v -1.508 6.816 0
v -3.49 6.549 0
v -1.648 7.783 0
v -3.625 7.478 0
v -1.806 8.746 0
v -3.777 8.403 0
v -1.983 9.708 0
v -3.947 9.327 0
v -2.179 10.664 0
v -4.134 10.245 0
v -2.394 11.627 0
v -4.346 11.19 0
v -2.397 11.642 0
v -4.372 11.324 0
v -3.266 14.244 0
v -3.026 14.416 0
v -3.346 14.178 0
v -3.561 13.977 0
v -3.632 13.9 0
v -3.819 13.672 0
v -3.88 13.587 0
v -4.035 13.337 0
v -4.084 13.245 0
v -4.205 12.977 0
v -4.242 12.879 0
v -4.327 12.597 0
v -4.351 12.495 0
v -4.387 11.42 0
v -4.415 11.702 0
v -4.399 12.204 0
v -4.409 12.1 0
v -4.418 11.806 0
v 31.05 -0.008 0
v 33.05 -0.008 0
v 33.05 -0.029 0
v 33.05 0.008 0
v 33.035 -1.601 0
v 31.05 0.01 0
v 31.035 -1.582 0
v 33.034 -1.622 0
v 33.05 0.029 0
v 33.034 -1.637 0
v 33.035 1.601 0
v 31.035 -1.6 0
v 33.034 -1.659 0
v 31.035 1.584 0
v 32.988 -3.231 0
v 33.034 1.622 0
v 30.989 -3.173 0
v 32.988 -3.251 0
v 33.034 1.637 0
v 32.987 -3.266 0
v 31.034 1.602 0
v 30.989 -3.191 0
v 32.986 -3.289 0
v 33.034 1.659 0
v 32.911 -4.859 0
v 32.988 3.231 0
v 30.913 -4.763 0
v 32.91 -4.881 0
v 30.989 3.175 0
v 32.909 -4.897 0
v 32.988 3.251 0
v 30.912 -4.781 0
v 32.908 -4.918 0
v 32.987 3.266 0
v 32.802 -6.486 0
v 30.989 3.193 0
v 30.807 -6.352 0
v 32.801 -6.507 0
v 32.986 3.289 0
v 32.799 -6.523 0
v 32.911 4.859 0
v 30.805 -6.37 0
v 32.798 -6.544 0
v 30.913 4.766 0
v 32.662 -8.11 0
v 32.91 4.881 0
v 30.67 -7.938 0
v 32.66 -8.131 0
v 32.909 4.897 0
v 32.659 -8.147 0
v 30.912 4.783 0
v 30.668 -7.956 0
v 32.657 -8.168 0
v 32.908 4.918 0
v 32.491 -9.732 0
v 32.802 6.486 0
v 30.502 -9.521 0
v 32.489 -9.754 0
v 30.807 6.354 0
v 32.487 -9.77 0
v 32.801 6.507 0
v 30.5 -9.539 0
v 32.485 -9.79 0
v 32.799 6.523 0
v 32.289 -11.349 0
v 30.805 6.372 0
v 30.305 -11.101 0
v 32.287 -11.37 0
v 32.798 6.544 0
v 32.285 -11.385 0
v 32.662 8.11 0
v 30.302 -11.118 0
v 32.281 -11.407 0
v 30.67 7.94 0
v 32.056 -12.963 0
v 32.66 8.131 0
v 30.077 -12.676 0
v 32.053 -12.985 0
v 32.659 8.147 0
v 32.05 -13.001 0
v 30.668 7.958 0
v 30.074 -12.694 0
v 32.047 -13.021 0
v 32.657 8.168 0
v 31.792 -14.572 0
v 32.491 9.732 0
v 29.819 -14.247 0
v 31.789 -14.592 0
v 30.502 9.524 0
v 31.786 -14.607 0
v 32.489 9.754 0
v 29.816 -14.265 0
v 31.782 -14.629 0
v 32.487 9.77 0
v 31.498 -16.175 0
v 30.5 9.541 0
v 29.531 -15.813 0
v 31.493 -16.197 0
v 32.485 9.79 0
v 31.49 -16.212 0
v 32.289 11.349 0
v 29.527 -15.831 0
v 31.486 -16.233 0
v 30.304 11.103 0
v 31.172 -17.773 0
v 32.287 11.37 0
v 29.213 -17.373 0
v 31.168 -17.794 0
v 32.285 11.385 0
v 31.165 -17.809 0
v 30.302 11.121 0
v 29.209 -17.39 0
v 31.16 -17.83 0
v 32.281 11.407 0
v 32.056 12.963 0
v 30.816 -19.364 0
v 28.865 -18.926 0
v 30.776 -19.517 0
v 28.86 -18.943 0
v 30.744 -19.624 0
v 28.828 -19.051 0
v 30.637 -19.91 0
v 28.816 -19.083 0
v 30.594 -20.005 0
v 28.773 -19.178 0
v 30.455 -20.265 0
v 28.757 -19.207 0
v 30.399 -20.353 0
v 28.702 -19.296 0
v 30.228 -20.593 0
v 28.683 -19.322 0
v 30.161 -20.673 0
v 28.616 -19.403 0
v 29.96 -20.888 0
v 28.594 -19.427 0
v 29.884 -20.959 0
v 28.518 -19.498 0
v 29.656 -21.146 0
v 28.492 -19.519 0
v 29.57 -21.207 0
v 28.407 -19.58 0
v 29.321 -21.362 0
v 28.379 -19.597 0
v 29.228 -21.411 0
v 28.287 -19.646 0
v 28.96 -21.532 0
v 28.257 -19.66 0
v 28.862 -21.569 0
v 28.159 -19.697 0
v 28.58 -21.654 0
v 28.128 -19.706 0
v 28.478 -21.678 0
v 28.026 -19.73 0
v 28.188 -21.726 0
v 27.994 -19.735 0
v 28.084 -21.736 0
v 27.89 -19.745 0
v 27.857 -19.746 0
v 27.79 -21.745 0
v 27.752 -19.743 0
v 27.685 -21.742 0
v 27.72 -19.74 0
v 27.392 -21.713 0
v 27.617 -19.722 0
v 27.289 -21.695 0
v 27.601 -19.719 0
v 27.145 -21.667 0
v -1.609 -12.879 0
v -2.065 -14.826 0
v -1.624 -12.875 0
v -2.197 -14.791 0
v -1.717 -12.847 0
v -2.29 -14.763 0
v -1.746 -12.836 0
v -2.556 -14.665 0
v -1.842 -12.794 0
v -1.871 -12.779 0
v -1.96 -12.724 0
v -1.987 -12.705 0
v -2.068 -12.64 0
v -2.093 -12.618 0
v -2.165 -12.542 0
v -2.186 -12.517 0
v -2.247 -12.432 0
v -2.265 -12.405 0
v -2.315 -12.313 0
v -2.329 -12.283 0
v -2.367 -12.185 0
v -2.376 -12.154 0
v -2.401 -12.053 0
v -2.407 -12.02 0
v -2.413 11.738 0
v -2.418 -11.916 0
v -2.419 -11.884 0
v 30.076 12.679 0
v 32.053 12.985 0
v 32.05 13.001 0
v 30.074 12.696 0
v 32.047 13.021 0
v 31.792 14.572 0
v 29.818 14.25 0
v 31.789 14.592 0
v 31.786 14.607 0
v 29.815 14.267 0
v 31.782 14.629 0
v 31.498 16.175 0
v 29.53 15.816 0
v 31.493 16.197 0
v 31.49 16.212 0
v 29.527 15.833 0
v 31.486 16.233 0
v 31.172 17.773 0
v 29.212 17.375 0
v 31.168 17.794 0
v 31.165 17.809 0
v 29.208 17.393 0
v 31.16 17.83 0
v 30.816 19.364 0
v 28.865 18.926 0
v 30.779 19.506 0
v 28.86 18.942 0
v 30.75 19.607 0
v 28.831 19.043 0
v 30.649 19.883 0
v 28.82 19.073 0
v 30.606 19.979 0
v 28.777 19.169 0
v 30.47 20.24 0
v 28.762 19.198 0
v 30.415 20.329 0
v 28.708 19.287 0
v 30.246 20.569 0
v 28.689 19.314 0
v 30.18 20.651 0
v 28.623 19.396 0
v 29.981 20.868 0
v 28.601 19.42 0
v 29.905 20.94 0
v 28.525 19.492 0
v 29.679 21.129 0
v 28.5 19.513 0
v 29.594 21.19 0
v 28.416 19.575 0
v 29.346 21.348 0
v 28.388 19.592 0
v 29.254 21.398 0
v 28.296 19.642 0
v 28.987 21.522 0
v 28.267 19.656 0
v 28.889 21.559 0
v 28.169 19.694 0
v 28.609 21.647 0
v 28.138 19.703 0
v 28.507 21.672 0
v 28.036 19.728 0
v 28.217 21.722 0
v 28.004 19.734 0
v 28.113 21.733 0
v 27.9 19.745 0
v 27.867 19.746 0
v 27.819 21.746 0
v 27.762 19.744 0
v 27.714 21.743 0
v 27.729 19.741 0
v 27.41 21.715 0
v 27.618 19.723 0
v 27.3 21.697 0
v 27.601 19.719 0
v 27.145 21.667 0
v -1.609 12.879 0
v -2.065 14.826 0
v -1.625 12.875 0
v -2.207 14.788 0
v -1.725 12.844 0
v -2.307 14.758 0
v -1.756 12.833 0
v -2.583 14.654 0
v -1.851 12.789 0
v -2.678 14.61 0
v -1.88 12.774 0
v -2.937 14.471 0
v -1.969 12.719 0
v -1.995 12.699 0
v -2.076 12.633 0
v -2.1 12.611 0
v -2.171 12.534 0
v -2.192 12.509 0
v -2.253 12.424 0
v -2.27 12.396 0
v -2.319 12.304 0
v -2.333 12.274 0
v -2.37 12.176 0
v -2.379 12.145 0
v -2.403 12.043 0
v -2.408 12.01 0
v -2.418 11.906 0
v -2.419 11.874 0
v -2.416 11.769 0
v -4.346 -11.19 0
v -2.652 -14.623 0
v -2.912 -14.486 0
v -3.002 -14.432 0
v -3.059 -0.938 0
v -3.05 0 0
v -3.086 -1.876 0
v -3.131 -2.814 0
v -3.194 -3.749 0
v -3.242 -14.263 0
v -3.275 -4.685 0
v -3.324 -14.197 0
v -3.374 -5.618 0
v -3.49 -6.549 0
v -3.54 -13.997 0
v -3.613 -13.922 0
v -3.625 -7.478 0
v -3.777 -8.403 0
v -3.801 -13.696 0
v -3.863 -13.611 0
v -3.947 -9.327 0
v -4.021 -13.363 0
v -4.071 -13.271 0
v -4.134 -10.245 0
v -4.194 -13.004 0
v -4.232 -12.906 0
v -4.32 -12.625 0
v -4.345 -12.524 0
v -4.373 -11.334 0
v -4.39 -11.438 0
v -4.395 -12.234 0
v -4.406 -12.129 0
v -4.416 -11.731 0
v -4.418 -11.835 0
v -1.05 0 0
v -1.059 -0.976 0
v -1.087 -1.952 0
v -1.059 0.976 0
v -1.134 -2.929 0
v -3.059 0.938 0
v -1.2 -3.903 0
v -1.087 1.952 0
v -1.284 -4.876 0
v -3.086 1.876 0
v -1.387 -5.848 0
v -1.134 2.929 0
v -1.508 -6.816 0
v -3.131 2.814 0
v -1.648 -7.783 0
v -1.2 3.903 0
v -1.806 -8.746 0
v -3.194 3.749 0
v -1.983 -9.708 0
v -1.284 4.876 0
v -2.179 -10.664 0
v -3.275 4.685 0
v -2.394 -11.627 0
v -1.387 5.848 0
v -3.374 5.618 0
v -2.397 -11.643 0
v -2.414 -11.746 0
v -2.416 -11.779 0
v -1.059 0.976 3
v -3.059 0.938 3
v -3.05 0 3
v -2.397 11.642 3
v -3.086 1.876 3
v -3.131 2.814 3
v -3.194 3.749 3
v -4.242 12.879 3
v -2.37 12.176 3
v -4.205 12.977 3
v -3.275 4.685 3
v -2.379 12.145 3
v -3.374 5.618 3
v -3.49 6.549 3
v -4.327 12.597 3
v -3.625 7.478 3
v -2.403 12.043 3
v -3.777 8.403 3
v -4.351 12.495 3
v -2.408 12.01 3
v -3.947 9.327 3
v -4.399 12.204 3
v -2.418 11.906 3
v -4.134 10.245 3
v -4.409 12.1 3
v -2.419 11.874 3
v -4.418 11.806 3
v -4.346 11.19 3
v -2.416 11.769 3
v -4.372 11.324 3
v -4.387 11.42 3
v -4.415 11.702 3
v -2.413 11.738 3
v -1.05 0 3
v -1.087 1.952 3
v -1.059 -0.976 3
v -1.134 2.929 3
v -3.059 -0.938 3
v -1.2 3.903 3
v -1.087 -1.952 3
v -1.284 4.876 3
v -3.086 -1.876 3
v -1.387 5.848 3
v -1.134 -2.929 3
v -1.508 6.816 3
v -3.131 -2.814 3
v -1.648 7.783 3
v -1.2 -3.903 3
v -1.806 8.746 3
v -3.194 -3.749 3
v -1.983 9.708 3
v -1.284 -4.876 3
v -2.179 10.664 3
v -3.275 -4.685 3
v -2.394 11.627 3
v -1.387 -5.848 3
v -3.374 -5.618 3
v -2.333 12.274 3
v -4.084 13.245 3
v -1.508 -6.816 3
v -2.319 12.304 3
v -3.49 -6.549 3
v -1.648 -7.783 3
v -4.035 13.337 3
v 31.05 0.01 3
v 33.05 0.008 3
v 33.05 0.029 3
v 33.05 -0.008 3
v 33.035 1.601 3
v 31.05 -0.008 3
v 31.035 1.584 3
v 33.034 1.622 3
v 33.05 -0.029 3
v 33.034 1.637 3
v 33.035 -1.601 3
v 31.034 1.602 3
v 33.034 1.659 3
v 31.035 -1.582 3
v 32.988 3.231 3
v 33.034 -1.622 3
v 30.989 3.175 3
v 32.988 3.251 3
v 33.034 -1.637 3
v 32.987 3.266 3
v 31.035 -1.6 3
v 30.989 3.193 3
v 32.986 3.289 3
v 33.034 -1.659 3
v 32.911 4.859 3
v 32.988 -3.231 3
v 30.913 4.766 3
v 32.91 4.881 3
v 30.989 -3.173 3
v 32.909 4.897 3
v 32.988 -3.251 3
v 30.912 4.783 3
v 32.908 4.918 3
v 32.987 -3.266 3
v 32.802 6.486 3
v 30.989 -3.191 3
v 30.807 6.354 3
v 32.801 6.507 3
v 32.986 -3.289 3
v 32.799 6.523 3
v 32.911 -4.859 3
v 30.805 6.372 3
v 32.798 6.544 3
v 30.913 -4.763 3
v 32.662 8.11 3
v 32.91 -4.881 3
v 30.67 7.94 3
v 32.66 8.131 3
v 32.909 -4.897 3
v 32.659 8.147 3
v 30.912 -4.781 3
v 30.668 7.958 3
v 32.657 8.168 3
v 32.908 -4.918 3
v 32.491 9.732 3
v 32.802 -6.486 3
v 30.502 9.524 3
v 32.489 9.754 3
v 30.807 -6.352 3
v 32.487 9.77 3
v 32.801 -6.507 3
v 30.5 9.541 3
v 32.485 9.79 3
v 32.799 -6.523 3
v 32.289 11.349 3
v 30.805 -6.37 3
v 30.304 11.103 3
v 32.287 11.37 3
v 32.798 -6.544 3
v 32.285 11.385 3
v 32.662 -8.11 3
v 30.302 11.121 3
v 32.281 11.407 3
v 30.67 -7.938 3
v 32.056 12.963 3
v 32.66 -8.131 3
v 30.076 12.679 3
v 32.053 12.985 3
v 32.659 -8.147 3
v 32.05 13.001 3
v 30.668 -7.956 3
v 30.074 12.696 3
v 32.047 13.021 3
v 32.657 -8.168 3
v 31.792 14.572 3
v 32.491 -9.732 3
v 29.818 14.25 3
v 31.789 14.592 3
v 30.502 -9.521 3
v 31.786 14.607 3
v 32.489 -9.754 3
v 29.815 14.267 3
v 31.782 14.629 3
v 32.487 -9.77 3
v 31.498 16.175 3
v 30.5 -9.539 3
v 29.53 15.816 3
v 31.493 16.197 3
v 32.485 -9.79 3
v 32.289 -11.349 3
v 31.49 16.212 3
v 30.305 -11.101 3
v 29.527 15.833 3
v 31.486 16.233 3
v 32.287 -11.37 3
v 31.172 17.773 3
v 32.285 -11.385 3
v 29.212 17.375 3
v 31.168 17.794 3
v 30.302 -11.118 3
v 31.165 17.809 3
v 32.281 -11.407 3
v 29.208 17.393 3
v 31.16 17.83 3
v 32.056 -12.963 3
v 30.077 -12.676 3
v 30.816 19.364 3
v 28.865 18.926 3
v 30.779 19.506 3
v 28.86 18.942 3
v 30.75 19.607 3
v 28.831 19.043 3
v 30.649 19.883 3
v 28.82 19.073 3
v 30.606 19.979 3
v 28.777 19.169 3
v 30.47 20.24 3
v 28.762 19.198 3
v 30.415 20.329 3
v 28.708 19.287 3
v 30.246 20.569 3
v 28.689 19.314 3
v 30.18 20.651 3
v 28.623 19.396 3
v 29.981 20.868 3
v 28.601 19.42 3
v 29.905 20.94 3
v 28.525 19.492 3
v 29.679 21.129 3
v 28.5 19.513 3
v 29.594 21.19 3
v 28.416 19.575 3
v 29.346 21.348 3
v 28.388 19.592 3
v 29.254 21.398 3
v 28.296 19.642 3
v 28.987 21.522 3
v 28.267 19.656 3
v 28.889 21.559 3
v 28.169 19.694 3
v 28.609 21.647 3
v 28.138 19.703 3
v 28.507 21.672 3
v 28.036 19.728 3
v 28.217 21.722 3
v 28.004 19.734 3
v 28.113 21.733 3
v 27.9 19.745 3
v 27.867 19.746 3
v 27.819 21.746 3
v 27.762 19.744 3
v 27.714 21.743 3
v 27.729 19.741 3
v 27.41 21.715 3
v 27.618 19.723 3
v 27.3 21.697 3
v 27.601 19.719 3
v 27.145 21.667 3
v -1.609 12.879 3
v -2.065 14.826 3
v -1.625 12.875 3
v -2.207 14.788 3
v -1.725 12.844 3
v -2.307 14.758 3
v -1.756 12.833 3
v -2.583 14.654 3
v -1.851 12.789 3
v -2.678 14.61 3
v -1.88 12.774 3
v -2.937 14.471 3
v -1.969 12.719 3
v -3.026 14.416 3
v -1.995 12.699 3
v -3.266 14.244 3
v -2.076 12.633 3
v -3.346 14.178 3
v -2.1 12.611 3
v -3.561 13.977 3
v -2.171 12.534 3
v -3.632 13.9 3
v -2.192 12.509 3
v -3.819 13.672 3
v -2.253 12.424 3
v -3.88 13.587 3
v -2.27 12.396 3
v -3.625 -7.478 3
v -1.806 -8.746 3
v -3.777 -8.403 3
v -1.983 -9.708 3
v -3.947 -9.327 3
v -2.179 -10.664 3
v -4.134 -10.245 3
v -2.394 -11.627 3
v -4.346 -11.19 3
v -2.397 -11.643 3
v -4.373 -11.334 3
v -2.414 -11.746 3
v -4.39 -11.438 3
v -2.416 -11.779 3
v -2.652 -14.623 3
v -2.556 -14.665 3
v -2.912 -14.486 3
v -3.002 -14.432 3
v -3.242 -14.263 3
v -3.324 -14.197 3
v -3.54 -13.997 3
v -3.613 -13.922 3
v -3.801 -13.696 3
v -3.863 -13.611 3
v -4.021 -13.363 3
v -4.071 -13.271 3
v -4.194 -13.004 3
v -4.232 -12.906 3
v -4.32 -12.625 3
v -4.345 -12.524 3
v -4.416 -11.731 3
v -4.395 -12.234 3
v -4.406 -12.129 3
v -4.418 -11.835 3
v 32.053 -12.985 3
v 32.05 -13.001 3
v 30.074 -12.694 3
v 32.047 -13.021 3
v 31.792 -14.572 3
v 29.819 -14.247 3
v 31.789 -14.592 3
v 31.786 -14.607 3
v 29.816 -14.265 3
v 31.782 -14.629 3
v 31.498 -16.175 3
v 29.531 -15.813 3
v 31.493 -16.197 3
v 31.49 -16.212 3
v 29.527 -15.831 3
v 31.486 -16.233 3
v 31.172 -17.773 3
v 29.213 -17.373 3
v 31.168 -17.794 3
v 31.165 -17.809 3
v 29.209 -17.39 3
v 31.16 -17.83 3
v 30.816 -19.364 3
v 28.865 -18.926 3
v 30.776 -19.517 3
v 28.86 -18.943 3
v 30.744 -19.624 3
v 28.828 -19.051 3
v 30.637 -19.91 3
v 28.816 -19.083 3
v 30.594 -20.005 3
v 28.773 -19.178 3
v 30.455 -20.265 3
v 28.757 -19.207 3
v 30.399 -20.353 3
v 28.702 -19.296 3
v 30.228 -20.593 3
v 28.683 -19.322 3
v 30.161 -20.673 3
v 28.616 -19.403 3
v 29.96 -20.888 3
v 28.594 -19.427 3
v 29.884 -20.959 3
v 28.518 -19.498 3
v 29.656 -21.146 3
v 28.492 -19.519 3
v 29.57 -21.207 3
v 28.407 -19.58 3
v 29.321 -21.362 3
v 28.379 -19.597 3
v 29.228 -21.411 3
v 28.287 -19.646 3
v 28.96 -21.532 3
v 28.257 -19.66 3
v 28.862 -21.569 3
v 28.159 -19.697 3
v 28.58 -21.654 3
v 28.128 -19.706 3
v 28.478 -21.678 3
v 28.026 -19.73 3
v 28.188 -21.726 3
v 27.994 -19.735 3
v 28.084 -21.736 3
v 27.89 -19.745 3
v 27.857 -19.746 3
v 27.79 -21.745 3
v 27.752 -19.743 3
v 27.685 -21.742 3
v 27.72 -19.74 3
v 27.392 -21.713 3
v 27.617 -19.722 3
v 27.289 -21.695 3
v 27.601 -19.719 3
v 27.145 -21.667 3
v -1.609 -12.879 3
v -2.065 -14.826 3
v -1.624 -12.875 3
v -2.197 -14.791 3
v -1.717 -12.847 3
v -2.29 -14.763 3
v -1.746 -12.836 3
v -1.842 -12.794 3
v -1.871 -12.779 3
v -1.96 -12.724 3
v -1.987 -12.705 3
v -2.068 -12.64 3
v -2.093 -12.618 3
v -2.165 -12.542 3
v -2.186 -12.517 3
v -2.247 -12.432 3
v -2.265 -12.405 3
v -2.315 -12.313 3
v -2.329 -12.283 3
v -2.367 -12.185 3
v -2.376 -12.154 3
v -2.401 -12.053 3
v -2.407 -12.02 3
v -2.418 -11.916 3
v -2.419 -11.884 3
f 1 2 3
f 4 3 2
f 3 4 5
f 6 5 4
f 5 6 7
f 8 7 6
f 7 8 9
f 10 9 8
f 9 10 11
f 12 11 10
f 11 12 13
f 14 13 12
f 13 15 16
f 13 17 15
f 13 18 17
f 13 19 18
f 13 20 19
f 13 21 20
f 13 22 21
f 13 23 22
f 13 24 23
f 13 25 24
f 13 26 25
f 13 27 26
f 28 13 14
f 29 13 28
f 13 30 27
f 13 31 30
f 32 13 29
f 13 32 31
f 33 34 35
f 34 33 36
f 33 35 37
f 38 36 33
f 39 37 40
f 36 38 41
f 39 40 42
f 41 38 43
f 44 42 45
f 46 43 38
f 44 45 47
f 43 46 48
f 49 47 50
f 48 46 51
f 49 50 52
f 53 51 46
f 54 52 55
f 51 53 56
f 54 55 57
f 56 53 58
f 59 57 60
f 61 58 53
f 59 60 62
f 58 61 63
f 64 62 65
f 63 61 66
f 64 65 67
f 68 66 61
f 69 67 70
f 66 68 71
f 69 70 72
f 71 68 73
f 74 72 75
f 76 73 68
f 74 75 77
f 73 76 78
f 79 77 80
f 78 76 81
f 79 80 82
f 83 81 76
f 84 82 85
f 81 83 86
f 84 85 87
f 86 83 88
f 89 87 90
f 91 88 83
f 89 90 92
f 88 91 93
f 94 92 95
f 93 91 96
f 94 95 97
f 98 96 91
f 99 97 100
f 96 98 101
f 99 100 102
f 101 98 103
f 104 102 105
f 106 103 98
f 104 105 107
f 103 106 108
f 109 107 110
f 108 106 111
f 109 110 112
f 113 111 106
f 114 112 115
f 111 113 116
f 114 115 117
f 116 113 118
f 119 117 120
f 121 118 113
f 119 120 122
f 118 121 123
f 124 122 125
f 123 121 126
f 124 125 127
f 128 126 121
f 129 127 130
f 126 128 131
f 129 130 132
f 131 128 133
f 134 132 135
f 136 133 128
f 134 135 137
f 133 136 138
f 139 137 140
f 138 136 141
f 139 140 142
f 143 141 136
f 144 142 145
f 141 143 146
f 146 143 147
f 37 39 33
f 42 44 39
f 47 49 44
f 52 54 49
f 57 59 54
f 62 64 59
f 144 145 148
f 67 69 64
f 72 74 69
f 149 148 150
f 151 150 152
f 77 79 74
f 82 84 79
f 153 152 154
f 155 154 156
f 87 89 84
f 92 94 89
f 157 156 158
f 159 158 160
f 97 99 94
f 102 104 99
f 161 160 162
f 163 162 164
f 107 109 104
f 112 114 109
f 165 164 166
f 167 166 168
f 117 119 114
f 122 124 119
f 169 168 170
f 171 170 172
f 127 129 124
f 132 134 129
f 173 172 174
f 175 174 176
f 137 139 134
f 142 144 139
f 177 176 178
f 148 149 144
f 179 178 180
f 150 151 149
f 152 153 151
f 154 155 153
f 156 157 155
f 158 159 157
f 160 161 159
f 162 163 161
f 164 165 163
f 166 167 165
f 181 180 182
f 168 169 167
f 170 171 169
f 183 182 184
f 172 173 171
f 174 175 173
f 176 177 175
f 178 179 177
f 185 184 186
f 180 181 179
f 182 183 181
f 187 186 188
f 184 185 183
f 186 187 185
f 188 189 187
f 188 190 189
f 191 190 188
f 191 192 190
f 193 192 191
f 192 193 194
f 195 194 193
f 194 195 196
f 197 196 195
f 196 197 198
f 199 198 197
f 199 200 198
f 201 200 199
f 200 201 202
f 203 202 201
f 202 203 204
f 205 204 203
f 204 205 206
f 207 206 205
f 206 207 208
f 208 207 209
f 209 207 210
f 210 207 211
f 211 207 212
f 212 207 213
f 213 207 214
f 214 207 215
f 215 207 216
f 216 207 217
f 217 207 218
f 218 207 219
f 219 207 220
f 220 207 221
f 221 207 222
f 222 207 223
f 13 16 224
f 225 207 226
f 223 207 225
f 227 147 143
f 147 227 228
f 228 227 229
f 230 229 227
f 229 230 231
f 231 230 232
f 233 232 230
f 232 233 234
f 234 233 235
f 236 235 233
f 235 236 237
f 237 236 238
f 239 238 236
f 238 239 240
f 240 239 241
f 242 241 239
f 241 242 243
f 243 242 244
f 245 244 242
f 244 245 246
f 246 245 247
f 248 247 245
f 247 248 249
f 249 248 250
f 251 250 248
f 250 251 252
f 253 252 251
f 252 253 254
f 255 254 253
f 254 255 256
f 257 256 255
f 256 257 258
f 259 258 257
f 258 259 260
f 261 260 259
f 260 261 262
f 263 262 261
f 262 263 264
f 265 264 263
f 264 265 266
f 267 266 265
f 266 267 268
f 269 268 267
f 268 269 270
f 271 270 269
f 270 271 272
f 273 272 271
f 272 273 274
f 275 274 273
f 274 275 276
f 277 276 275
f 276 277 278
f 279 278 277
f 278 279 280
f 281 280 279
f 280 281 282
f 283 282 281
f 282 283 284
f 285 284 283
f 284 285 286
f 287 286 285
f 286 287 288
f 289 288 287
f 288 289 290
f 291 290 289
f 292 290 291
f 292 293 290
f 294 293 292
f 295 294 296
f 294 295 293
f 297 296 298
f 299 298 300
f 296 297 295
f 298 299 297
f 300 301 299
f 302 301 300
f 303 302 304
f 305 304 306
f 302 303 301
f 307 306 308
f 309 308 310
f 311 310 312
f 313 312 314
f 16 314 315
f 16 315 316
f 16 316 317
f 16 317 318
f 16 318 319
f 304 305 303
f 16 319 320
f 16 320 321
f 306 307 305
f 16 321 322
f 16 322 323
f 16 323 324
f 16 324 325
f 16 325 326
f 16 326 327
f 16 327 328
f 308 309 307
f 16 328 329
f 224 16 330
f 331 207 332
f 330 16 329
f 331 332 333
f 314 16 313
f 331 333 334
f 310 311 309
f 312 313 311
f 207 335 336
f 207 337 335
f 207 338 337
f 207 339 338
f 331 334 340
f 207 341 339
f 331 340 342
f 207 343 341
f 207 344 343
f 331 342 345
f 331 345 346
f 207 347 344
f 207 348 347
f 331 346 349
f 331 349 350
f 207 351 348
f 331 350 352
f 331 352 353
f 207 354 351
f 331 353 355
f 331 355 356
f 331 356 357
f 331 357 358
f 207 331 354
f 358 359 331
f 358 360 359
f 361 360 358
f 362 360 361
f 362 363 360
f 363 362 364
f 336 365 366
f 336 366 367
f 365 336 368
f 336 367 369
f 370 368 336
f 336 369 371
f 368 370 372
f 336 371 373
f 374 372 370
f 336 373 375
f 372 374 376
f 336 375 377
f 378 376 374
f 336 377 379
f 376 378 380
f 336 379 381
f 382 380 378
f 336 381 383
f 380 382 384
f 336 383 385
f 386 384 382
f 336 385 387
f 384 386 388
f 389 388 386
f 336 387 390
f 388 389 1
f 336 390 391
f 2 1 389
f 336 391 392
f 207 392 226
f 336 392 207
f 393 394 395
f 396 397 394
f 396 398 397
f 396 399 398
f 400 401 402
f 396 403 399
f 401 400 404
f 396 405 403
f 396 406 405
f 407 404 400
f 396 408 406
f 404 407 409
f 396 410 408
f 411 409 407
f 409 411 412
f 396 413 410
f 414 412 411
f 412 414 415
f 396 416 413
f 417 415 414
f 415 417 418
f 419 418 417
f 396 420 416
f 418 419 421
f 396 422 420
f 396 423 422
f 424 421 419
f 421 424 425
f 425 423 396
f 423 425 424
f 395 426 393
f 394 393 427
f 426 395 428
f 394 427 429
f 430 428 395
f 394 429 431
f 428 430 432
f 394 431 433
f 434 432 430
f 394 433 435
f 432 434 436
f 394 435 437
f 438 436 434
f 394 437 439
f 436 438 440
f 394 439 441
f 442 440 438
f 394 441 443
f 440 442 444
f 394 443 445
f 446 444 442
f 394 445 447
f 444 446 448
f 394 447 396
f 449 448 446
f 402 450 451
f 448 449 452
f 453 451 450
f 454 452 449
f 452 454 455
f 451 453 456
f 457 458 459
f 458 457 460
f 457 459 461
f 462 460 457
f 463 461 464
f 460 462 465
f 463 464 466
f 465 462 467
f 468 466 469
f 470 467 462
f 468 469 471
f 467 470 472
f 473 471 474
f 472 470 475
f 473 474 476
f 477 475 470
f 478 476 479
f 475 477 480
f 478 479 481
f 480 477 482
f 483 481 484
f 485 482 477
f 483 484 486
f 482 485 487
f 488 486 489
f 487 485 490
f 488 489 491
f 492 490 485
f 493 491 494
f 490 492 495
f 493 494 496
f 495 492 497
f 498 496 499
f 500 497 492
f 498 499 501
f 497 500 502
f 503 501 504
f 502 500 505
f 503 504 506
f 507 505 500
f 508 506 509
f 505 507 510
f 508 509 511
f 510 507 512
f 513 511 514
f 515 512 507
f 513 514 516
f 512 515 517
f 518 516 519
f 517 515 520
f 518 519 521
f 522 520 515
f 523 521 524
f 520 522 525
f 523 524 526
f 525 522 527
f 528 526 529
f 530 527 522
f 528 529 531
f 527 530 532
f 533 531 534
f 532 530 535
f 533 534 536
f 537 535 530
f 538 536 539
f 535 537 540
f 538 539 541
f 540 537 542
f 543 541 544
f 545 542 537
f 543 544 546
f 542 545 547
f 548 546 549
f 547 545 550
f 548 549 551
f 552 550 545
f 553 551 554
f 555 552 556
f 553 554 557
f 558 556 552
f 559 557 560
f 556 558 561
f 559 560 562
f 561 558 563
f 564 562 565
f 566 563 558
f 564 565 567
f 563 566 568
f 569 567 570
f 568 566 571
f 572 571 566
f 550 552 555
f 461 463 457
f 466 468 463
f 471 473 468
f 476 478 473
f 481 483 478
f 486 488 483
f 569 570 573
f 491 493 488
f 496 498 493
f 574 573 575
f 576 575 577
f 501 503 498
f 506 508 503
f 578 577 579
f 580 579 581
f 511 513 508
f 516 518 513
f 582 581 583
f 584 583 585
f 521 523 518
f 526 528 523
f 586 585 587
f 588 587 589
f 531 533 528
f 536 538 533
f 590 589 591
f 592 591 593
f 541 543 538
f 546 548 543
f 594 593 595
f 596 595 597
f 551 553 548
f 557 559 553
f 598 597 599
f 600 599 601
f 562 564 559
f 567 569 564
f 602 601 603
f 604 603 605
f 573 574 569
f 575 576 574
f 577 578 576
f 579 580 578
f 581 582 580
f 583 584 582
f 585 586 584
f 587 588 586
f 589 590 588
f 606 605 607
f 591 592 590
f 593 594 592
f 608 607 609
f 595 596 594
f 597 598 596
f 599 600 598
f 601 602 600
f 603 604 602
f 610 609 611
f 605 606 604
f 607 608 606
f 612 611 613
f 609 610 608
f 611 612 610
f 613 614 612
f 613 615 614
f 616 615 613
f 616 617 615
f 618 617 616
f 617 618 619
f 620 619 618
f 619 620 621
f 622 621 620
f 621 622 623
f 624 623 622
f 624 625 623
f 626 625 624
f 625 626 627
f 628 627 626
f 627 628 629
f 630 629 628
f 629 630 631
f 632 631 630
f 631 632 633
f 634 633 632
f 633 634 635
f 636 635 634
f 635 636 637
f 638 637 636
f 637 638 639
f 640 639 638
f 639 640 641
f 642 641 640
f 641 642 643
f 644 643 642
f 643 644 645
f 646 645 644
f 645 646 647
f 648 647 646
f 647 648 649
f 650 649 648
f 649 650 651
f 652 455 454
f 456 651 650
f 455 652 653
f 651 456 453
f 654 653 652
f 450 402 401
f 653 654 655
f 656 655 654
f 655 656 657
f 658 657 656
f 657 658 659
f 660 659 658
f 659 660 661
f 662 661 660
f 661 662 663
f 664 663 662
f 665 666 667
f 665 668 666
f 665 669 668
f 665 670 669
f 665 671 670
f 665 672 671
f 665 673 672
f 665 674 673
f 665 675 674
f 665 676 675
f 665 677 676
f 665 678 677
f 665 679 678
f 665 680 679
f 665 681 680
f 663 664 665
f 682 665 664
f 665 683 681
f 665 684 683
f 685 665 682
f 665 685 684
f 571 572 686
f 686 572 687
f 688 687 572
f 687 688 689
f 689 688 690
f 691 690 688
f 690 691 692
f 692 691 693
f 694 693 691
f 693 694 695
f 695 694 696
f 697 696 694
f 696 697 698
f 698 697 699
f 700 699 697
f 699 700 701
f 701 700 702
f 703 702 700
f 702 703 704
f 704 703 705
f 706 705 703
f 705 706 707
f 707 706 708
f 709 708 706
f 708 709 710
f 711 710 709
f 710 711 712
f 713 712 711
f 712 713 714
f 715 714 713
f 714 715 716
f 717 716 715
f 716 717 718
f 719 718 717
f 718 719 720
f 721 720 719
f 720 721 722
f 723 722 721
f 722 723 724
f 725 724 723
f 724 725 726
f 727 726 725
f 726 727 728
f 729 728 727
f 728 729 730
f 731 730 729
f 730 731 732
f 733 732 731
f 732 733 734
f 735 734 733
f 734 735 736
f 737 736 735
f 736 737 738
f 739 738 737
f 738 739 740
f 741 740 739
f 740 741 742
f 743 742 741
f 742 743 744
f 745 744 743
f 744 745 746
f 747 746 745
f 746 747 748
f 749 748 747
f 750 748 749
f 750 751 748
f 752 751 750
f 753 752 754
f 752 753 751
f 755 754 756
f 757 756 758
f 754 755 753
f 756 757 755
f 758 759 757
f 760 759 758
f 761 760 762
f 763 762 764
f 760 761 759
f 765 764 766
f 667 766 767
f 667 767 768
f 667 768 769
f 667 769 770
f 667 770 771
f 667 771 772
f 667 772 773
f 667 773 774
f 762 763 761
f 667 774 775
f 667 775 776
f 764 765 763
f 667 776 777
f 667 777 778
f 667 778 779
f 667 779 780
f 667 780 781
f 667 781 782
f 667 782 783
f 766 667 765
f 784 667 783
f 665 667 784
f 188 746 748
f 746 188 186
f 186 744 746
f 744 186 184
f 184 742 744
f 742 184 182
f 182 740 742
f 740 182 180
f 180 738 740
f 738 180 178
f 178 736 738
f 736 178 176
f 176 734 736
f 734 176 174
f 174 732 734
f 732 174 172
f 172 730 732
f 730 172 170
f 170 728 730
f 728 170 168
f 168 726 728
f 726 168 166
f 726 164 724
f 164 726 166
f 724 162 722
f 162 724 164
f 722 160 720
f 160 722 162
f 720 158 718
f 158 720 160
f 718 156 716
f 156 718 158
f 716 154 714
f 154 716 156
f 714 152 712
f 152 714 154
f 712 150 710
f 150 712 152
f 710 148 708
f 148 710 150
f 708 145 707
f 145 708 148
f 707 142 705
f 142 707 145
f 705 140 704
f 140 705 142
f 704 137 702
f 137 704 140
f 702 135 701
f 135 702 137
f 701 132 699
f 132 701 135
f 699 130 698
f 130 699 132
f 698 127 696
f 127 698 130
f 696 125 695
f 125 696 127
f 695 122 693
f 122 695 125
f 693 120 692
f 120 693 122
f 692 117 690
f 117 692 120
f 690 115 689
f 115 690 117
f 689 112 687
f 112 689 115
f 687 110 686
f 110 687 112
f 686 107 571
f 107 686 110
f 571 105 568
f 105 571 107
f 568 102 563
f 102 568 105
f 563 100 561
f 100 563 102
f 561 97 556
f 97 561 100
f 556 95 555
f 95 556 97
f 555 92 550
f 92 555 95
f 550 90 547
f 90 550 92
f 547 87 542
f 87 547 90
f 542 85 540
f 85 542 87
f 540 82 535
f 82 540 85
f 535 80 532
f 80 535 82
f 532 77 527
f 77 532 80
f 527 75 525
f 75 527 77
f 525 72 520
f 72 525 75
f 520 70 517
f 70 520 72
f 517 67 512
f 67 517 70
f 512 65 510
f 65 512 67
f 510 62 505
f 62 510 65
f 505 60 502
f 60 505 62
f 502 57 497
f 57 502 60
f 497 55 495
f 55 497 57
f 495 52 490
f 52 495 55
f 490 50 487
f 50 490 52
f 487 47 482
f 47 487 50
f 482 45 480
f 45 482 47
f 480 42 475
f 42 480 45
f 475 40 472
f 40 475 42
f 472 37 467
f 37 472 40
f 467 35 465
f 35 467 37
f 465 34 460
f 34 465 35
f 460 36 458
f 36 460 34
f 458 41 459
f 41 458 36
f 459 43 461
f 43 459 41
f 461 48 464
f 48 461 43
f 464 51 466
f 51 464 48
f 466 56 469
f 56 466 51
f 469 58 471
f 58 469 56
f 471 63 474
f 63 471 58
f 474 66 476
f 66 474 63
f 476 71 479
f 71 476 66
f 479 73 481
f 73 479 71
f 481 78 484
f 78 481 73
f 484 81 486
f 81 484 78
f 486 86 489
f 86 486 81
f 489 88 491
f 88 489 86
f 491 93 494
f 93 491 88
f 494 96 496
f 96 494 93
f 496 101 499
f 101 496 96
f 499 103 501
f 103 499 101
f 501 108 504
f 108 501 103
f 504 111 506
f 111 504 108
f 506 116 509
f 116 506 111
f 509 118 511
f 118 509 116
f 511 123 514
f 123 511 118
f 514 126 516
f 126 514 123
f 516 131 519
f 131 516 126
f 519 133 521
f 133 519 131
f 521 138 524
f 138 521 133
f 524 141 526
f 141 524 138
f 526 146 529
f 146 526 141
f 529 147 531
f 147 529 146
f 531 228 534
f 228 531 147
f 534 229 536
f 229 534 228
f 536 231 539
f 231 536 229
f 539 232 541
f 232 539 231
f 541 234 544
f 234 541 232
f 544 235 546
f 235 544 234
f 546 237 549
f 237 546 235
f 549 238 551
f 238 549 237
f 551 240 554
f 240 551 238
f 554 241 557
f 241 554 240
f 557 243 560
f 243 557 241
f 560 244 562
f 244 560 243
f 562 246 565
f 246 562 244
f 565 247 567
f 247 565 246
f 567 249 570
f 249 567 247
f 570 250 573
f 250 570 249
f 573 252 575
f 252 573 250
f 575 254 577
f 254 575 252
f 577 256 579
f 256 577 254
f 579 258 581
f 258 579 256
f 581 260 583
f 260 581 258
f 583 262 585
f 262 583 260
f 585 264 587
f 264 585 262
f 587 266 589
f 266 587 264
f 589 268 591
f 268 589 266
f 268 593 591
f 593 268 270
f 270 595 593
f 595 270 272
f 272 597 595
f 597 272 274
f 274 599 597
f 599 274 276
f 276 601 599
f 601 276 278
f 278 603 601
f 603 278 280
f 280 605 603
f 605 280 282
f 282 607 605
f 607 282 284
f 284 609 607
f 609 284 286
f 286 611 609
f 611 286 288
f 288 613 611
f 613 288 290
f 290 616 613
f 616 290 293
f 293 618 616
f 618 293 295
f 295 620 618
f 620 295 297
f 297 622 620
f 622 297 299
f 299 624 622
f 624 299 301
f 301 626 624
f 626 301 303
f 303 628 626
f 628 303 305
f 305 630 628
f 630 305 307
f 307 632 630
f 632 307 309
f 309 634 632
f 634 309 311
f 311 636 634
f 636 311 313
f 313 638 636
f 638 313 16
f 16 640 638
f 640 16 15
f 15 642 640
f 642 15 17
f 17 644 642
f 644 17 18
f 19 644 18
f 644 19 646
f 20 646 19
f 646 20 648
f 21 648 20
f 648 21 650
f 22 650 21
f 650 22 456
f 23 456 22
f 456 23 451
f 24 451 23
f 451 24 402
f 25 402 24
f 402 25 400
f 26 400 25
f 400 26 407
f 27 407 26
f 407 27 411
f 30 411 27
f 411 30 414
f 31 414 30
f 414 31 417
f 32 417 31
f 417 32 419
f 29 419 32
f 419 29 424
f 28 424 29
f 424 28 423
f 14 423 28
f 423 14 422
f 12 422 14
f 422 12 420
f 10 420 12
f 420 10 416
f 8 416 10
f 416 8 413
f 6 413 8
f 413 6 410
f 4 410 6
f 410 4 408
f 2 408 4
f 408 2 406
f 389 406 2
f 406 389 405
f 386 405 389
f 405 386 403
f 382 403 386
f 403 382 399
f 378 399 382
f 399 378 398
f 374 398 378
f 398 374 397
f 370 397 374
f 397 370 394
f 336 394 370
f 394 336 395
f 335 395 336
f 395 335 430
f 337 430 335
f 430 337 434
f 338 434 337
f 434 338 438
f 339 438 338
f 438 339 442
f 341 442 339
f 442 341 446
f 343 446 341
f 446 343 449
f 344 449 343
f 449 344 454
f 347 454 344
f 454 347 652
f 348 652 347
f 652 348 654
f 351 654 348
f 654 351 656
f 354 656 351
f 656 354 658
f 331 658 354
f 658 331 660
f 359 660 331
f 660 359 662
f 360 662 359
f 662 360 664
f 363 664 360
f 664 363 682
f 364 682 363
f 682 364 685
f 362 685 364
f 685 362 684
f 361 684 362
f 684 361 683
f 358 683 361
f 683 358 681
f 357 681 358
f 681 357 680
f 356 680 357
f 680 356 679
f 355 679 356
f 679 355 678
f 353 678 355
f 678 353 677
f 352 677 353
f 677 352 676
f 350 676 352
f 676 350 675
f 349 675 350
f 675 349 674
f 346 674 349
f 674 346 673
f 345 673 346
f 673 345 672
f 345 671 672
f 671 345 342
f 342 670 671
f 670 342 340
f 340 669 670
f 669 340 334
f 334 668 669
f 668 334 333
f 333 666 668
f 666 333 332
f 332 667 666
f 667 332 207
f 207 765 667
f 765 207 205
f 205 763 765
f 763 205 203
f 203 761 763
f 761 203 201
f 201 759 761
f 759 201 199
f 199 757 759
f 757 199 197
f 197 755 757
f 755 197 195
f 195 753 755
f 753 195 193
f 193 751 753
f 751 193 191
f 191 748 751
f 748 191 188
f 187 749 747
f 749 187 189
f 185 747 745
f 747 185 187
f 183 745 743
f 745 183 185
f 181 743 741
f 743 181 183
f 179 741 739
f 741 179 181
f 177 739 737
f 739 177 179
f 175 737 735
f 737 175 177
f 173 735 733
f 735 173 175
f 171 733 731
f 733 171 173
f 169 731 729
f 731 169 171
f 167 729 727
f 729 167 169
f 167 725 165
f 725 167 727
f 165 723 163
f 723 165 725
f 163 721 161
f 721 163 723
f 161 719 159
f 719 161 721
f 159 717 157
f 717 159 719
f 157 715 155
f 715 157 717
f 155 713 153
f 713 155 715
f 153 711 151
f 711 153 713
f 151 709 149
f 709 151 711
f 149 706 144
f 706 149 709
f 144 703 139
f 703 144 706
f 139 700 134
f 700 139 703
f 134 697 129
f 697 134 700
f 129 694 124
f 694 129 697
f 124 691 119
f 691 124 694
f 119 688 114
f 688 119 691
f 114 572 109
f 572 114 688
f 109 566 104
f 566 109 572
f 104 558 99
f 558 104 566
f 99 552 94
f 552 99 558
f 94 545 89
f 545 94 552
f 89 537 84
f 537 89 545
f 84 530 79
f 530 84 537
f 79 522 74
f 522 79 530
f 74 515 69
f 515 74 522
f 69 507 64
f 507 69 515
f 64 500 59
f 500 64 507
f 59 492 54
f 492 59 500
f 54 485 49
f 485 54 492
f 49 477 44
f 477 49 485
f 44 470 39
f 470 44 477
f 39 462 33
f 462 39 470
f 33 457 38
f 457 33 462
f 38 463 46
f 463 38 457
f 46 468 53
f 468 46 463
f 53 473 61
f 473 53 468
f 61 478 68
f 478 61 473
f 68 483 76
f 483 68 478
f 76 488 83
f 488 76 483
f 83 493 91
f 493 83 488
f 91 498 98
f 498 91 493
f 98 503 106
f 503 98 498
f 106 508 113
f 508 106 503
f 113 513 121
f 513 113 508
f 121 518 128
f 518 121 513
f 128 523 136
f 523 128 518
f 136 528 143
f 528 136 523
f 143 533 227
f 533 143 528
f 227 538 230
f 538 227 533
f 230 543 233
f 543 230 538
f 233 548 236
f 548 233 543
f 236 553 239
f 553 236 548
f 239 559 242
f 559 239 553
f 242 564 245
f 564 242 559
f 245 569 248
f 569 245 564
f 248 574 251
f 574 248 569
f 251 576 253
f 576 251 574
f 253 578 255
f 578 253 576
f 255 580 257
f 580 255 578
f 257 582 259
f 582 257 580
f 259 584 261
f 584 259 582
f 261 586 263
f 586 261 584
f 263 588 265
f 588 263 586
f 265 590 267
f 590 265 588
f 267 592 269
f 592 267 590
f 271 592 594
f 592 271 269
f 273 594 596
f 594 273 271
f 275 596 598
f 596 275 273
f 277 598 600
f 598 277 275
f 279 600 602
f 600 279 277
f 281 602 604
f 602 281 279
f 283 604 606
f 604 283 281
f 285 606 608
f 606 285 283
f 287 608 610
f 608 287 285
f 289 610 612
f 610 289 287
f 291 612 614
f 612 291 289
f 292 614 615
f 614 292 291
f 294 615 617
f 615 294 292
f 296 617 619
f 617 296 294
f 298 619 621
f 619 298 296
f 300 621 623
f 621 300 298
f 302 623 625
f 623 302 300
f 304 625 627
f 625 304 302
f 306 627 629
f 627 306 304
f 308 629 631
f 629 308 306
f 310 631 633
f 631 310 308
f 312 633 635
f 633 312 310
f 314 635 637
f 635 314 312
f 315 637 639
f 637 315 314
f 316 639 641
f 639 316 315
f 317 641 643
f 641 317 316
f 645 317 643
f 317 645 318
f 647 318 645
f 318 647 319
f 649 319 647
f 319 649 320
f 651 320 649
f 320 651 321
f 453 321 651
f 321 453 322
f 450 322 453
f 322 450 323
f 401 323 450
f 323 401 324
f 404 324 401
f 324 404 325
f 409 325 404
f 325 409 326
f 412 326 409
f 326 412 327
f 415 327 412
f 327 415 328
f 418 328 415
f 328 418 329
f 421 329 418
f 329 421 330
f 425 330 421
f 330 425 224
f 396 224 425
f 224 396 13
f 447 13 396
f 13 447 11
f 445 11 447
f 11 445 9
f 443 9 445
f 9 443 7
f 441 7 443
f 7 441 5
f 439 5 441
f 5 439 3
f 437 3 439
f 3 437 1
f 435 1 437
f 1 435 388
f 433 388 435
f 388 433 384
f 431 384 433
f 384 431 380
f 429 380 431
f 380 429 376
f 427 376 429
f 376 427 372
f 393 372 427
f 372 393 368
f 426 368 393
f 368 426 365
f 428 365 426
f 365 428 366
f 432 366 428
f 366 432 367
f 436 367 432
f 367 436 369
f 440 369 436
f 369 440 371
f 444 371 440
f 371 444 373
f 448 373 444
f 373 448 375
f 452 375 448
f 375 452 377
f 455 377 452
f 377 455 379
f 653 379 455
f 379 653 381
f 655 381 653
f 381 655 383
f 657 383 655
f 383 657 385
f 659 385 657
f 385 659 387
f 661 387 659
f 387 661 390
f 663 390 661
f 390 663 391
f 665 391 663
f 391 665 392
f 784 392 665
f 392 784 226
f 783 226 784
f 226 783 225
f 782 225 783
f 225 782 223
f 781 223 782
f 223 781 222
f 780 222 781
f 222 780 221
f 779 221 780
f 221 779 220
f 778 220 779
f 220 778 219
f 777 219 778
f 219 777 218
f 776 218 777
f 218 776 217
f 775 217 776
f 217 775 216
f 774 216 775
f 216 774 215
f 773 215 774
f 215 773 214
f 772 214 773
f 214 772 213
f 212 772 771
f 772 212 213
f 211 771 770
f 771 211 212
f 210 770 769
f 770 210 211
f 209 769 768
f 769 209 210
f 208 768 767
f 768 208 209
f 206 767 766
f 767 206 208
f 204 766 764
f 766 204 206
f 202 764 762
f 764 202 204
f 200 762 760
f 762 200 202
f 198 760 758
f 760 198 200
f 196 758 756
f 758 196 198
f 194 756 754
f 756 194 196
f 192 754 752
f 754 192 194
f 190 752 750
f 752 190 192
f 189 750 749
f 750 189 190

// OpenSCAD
// file: parameters.scad
// =============================================================================
// Gen-BU — nightly 2026-10-10 (physics_scorer, honest magpylib watts)
// New pole/coil ratio on a much bigger ring: twelve narrow 26.4° bobbins (r 52–82 mm, 13.5 mm build, 8.1 mm copper) under 8 poles pushed out to R66, so each coil spans 120° electrical with a short mean turn while the poles sit 52 mm apart (less pole-to-pole leakage) and move faster. 8p/12c was dismissed on earlier nights at 3.2 W because it was only scanned on the R50 ring; tonight it climbs steadily with ring radius (R50 3.39 → R57 4.58 → R59.5 5.18 → R66 6.08 W scan). Diametric Ø5 assists turned out to LOWER this layout, so none are fitted. A ring this big no longer fits a one-plate layout with disc endbells, so the endbells become two crossed 44 mm bar bearing bridges, which is what keeps it on one 410 mm plate.
// Clocking 0 deg (magnets N facing S) + D-flat keyed bore + index notch + flip-symmetric hole map.
// Windable 2-piece bobbin; turns = physics_scorer turns_fit; copper only between flanges.
// Steel back-iron: 2× Ø158 × 4.76 mm (3/16") mild-steel discs (steel_backiron_disc.dxf); magnets sit ON the steel
// (through-pockets) -> score with --back-iron. Night 2026-10-10.
// =============================================================================
topology            = "dual_rotor";

// --- Wire / winding (physics_scorer winding-fit) -------------------------------
wire_awg            = 26;
wire_od             = 0.45;     // insulated OD mm (bare 0.405)
fill_realistic      = 0.65;     // insulated-wire area / window (DENSE layered wind with a jig; scorer cap 0.65)
turns               = 446;       // = physics_scorer turns_fit (do NOT raise)
coil_former_type    = "bobbin";
coil_core_inset     = 13.50;     // radial copper build: hub = copper boundary inset by this
wind_build_axial    = 0.0;      // nothing proud of the flanges
wind_build_radial   = 0.0;

// --- Bobbin (base + lid) ---------------------------------------------------------
coil_id_r           = 52.00;    // copper boundary sector
coil_od_r           = 82.00;
span_deg            = 26.36;    // = pitch - 2*asin((wall+0.85)/coil_id_r) -> >=1.2 mm stator web
former_web          = 8.10;     // copper height between flanges (TALL copper: steel keeps Bz up)
flange_t            = 0.80;     // >= 0.8 mm FDM wall rule (tall winds push on the flanges)
wall                = 0.80;     // flange lip beyond copper
former_bare_h       = former_web + 2 * flange_t;
coil_envelope_h     = former_bare_h + 2 * wind_build_axial;
tab_w               = 7.0;
tab_len             = 7.0;
tab_h               = former_bare_h / 2;
pin_d               = 1.9;      // 1.75 mm filament locating pin
coil_mount_r        = coil_od_r + 0.2 + 4.0;
lead_y              = 1.6;
lead_slot_w         = 0.9;
lead_groove_d       = 0.6;

// --- Gap -------------------------------------------------------------------------
run_clear           = 0.50;     // rotor face -> flange
gap_spacer_h        = run_clear + wind_build_axial;
m2m                 = coil_envelope_h + 2 * run_clear;   // rotor face to rotor face (= gap_sleeve length)

// --- Stator ----------------------------------------------------------------------
coil_stations       = 12;
bay_clear           = 0.25;
stator_thick        = former_bare_h;                        // bobbins flush both faces
stator_od           = 182;
shaft_clear_stator  = 14.0;     // stator is static; gap sleeve OD 12 spins inside

// --- Rotor(s) --------------------------------------------------------------------
magnet_Br           = 1.43;     // N52
magnet_d_large      = 20.0;
magnet_h_large      = 5.0;      // one O20x5 per pocket
magnet_h_small      = 5.0;      // unused: no O5 pockets in this kit
halbach_magnetisation = "none";  // NO O5 assist magnets in this kit (scan: they lower the 4-pole score)
rotor_b_same_axis   = true;     // same-index magnets share one axis: N faces S across the gap
large_pocket_d      = 20.3;
small_pocket_d      = 5.3;
pocket_h            = 5.00;     // THROUGH the carrier: magnet back face sits on the steel disc (FLUSH seat: carrier = magnet height, magnet face level with the rotor face)
large_n             = 8;
R_large             = 66.0;
small_r_list        = [];       // no O5 pockets
carrier_od          = 158.0;
carrier_thick       = pocket_h;
hub_h               = 12.0;     // > steel_t + insert: radial set-screw clears the steel
hub_od              = 24.0;     // slim hub so the M4 brace rods fit at R~18 inside the coil ring
hub_insert_d        = 4.0;      // M3 heat-set insert, radial, bears on the D-flat
rotor_b_offset_deg  = 0.0;      // CLOCKING: magnets directly opposite
shaft_key           = "dflat";
dflat_depth         = 0.5;      // 8 mm shaft with 0.5 mm flat (7.5 across flat)
index_notch_d       = 3.0;

// --- Steel back-iron (buyable laser-cut) -------------------------------------------
steel_t             = 4.76;      // mild steel thickness (image method ignores it; sized from steel_flux.py so the return path stays well below saturation)
steel_center_hole   = 26.0;     // slips over the rotor hub (OD 24)
steel_od            = carrier_od;   // steel disc OD = rotor carrier OD

// --- Modular MAX interface ----------------------------------------------------------
shaft_bore          = 8.35;
dflat_x             = 4.0 - dflat_depth + (shaft_bore - 8.0) / 2;
bearing_d           = 21.85;
bearing_h           = 7.2;
m3_clear            = 3.5;
bolt_r_inner        = 30.0;     // M3 steel-disc clamp bolts (inside the magnet ring)
bolt_n_inner        = 4;
bolt_inner_angles   = [0, 90, 180, 270];
bolt_r_outer        = 44.0;     // second M3 steel-disc clamp ring
bolt_outer_angles   = [67.5, 112.5, 247.5, 292.5];
flange_bolt_r       = 85.0;     // frame rods: OUTSIDE the rotor OD (rotors spin inside them)
flange_bolt_n       = 4;
flange_bolt_offset  = 45.00;    // between coil stations -> never cuts a lead groove/tab
brace_r             = 18.0;
brace_d             = 4.3;      // temporary M4 jack rods (assembly only)
brace_n             = 4;
brace_angles        = [45, 135, 225, 315];          // flip-symmetric

spacer_pad_od       = 14.0;
spacer_pad_id       = m3_clear;
endbell_od          = 180.0;
endbell_thick       = 8.0;
endbell_shaft_clear = 10.0;
collar_h            = 10.0;
standoff_od         = 9.0;
frame_standoff_h    = run_clear + carrier_thick + hub_h + collar_h + 2.0;
sleeve_od           = 12.0;
plate_max_mm        = 410;

$fn = 64;
// main file
// Gen-BU — fit coupon (bay part): O20/O5 THROUGH pockets at carrier thickness (test on a steel offcut), 608 seat,
// D-flat bore, gap shim, and one bobbin-bay slice (bobbin footprint + bay_clear) to test former fit.
include <parameters.scad>;
$fn = 48;
// D-flat keyed bore: flat faces +X (angle 0 = magnet pocket 0 = index notch)
module dflat_bore(h) {
    intersection() {
        cylinder(d=shaft_bore, h=h);
        translate([-shaft_bore, -shaft_bore, 0]) cube([shaft_bore + dflat_x, 2*shaft_bore, h]);
    }
}
module sector_2d(r_in, r_out, ang) {
    polygon([
        for (a = [-ang/2 : ang/24 : ang/2]) [r_in*cos(a), r_in*sin(a)],
        for (a = [ang/2 : -ang/24 : -ang/2]) [r_out*cos(a), r_out*sin(a)]
    ]);
}
module footprint_2d() { offset(r=wall) sector_2d(coil_id_r, coil_od_r, span_deg); }
module hub_2d()       { offset(delta=-coil_core_inset) sector_2d(coil_id_r, coil_od_r, span_deg); }

// bay slice: 3 mm tall ring section of the stator bay around one footprint (tests bobbin drop-in fit)
translate([-coil_id_r, 0, 0]) difference() {
    linear_extrude(3) offset(r=bay_clear + 2) footprint_2d();
    translate([0, 0, -0.1]) linear_extrude(3.2) offset(r=bay_clear) footprint_2d();
}
